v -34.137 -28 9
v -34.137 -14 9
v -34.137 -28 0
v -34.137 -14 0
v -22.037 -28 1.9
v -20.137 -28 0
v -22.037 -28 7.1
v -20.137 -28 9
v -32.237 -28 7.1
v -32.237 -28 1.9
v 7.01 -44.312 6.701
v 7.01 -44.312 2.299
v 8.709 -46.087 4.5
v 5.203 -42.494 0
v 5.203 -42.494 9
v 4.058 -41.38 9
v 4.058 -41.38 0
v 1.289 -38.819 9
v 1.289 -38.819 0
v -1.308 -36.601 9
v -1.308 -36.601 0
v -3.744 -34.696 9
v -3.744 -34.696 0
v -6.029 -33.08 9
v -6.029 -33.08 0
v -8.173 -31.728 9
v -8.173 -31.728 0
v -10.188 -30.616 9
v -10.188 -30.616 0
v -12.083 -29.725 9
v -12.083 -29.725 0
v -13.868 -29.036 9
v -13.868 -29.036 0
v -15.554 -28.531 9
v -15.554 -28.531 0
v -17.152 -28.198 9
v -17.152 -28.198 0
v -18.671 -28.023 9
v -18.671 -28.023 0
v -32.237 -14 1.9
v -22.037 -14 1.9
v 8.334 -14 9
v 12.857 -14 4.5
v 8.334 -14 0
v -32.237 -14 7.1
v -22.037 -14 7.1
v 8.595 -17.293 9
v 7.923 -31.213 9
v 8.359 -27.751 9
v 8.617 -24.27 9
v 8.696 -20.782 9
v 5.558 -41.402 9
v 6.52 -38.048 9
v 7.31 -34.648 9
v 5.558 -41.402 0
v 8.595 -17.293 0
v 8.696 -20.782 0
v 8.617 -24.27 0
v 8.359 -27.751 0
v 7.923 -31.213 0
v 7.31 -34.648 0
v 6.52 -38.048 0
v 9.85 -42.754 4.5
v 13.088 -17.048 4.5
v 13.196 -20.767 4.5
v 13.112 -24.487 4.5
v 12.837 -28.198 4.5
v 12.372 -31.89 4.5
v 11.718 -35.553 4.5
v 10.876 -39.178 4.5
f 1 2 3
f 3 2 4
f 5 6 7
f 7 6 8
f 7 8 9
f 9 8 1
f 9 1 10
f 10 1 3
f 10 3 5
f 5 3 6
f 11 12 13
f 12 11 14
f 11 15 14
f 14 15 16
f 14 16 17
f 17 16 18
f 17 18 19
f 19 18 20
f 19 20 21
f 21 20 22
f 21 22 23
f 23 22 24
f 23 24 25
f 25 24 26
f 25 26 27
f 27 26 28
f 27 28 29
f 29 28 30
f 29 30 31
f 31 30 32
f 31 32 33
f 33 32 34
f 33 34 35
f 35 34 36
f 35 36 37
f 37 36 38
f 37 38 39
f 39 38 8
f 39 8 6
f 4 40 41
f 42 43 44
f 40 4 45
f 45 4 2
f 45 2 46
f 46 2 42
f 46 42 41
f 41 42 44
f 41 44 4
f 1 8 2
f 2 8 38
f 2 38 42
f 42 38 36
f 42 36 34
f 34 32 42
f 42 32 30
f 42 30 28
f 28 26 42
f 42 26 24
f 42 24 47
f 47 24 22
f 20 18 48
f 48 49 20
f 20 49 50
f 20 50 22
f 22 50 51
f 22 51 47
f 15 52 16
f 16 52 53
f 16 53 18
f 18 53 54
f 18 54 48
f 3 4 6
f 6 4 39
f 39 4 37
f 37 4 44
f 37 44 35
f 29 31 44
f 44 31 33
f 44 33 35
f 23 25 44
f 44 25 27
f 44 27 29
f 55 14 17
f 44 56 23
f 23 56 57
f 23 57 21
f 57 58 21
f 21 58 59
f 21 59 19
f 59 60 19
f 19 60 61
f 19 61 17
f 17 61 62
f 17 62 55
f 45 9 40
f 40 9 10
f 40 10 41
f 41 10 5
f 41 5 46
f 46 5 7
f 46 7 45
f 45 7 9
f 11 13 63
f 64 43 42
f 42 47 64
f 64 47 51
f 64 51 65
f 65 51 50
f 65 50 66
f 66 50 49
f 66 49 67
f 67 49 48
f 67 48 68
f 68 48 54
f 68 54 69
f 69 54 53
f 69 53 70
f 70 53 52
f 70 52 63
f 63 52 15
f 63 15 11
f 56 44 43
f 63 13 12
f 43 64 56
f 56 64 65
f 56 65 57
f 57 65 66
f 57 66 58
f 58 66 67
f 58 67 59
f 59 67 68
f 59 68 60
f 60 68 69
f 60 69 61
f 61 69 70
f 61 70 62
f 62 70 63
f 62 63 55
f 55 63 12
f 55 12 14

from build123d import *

# Parameters (mm, degrees)
BOSS_EXTRUDE1_DEPTH     = 9
CUT_EXTRUDE1_DEPTH      = 48.981771871
CUT_EXTRUDE1_DEPTH_BACK = 48.981771871
SKETCH2_W               = 10.2
SKETCH2_H               = 5.2
CHAMFER1_SIZE           = 5


with BuildPart() as part:
    # Sketch1 → Boss-Extrude1 (new body)
    with BuildSketch(Plane.XY):
        with BuildLine():
            Line((-34.136986301, -14), (-34.136986301, -28))
            Line((-34.136986301, -28), (-20.136986301, -28))
            add(Edge.make_bspline(
                [(-20.136986301, -28), (-8.577544678, -27.582757126), (9.091518621, -46.494870104)],
                knots=[0, 0, 0, 1, 1, 1], degree=2))
            ThreePointArc((9.091518621, -46.494870104), (13.07538723, -30.490408573), (13.358976811, -14))
            Line((13.358976811, -14), (-20.136986301, -14))
            Line((-20.136986301, -14), (-34.136986301, -14))
        make_face()
    extrude(amount=BOSS_EXTRUDE1_DEPTH)

    # Sketch2 → Cut-Extrude1 (cut, two sides: drawn at the far end of the back side and taken through both)
    with BuildSketch(Plane(origin=(0, -14, 0), x_dir=(1, 0, 0), z_dir=(0, 1, 0)).offset(-CUT_EXTRUDE1_DEPTH_BACK)):
        with Locations((-27.136986301, -4.5)):
            Rectangle(SKETCH2_W, SKETCH2_H)
    extrude(amount=CUT_EXTRUDE1_DEPTH + CUT_EXTRUDE1_DEPTH_BACK, mode=Mode.SUBTRACT)

    # Chamfer1
    # the kernel refuses this chamfer: 5 mm, written as the material it takes off along each edge
    with BuildSketch(Plane(origin=(-59.190017632, -21, 0), x_dir=(0.8608936735034536, -0.5087849083077534, 0), z_dir=(-0.5087849083077534, -0.8608936735034536, 0))) as chamfer1_piece_1:
        Polygon((72.885914927 - CHAMFER1_SIZE, 0), (72.885914927, CHAMFER1_SIZE), (72.885914927, 0), align=None)
    revolve(axis=Axis((-59.190017632, -21, 0), (0, 0, 1)), revolution_arc=46.202504034, mode=Mode.SUBTRACT)
    with BuildSketch(Plane(origin=(-59.190017632, -21, 9), x_dir=(0.8608936735034536, -0.5087849083077534, 0), z_dir=(-0.5087849083077534, -0.8608936735034536, 0))) as chamfer1_piece_2:
        Polygon((72.885914927 - CHAMFER1_SIZE, 0), (72.885914927, -CHAMFER1_SIZE), (72.885914927, 0), align=None)
    revolve(axis=Axis((-59.190017632, -21, 9), (0, 0, 1)), revolution_arc=46.202504034, mode=Mode.SUBTRACT)


solid = part.part
